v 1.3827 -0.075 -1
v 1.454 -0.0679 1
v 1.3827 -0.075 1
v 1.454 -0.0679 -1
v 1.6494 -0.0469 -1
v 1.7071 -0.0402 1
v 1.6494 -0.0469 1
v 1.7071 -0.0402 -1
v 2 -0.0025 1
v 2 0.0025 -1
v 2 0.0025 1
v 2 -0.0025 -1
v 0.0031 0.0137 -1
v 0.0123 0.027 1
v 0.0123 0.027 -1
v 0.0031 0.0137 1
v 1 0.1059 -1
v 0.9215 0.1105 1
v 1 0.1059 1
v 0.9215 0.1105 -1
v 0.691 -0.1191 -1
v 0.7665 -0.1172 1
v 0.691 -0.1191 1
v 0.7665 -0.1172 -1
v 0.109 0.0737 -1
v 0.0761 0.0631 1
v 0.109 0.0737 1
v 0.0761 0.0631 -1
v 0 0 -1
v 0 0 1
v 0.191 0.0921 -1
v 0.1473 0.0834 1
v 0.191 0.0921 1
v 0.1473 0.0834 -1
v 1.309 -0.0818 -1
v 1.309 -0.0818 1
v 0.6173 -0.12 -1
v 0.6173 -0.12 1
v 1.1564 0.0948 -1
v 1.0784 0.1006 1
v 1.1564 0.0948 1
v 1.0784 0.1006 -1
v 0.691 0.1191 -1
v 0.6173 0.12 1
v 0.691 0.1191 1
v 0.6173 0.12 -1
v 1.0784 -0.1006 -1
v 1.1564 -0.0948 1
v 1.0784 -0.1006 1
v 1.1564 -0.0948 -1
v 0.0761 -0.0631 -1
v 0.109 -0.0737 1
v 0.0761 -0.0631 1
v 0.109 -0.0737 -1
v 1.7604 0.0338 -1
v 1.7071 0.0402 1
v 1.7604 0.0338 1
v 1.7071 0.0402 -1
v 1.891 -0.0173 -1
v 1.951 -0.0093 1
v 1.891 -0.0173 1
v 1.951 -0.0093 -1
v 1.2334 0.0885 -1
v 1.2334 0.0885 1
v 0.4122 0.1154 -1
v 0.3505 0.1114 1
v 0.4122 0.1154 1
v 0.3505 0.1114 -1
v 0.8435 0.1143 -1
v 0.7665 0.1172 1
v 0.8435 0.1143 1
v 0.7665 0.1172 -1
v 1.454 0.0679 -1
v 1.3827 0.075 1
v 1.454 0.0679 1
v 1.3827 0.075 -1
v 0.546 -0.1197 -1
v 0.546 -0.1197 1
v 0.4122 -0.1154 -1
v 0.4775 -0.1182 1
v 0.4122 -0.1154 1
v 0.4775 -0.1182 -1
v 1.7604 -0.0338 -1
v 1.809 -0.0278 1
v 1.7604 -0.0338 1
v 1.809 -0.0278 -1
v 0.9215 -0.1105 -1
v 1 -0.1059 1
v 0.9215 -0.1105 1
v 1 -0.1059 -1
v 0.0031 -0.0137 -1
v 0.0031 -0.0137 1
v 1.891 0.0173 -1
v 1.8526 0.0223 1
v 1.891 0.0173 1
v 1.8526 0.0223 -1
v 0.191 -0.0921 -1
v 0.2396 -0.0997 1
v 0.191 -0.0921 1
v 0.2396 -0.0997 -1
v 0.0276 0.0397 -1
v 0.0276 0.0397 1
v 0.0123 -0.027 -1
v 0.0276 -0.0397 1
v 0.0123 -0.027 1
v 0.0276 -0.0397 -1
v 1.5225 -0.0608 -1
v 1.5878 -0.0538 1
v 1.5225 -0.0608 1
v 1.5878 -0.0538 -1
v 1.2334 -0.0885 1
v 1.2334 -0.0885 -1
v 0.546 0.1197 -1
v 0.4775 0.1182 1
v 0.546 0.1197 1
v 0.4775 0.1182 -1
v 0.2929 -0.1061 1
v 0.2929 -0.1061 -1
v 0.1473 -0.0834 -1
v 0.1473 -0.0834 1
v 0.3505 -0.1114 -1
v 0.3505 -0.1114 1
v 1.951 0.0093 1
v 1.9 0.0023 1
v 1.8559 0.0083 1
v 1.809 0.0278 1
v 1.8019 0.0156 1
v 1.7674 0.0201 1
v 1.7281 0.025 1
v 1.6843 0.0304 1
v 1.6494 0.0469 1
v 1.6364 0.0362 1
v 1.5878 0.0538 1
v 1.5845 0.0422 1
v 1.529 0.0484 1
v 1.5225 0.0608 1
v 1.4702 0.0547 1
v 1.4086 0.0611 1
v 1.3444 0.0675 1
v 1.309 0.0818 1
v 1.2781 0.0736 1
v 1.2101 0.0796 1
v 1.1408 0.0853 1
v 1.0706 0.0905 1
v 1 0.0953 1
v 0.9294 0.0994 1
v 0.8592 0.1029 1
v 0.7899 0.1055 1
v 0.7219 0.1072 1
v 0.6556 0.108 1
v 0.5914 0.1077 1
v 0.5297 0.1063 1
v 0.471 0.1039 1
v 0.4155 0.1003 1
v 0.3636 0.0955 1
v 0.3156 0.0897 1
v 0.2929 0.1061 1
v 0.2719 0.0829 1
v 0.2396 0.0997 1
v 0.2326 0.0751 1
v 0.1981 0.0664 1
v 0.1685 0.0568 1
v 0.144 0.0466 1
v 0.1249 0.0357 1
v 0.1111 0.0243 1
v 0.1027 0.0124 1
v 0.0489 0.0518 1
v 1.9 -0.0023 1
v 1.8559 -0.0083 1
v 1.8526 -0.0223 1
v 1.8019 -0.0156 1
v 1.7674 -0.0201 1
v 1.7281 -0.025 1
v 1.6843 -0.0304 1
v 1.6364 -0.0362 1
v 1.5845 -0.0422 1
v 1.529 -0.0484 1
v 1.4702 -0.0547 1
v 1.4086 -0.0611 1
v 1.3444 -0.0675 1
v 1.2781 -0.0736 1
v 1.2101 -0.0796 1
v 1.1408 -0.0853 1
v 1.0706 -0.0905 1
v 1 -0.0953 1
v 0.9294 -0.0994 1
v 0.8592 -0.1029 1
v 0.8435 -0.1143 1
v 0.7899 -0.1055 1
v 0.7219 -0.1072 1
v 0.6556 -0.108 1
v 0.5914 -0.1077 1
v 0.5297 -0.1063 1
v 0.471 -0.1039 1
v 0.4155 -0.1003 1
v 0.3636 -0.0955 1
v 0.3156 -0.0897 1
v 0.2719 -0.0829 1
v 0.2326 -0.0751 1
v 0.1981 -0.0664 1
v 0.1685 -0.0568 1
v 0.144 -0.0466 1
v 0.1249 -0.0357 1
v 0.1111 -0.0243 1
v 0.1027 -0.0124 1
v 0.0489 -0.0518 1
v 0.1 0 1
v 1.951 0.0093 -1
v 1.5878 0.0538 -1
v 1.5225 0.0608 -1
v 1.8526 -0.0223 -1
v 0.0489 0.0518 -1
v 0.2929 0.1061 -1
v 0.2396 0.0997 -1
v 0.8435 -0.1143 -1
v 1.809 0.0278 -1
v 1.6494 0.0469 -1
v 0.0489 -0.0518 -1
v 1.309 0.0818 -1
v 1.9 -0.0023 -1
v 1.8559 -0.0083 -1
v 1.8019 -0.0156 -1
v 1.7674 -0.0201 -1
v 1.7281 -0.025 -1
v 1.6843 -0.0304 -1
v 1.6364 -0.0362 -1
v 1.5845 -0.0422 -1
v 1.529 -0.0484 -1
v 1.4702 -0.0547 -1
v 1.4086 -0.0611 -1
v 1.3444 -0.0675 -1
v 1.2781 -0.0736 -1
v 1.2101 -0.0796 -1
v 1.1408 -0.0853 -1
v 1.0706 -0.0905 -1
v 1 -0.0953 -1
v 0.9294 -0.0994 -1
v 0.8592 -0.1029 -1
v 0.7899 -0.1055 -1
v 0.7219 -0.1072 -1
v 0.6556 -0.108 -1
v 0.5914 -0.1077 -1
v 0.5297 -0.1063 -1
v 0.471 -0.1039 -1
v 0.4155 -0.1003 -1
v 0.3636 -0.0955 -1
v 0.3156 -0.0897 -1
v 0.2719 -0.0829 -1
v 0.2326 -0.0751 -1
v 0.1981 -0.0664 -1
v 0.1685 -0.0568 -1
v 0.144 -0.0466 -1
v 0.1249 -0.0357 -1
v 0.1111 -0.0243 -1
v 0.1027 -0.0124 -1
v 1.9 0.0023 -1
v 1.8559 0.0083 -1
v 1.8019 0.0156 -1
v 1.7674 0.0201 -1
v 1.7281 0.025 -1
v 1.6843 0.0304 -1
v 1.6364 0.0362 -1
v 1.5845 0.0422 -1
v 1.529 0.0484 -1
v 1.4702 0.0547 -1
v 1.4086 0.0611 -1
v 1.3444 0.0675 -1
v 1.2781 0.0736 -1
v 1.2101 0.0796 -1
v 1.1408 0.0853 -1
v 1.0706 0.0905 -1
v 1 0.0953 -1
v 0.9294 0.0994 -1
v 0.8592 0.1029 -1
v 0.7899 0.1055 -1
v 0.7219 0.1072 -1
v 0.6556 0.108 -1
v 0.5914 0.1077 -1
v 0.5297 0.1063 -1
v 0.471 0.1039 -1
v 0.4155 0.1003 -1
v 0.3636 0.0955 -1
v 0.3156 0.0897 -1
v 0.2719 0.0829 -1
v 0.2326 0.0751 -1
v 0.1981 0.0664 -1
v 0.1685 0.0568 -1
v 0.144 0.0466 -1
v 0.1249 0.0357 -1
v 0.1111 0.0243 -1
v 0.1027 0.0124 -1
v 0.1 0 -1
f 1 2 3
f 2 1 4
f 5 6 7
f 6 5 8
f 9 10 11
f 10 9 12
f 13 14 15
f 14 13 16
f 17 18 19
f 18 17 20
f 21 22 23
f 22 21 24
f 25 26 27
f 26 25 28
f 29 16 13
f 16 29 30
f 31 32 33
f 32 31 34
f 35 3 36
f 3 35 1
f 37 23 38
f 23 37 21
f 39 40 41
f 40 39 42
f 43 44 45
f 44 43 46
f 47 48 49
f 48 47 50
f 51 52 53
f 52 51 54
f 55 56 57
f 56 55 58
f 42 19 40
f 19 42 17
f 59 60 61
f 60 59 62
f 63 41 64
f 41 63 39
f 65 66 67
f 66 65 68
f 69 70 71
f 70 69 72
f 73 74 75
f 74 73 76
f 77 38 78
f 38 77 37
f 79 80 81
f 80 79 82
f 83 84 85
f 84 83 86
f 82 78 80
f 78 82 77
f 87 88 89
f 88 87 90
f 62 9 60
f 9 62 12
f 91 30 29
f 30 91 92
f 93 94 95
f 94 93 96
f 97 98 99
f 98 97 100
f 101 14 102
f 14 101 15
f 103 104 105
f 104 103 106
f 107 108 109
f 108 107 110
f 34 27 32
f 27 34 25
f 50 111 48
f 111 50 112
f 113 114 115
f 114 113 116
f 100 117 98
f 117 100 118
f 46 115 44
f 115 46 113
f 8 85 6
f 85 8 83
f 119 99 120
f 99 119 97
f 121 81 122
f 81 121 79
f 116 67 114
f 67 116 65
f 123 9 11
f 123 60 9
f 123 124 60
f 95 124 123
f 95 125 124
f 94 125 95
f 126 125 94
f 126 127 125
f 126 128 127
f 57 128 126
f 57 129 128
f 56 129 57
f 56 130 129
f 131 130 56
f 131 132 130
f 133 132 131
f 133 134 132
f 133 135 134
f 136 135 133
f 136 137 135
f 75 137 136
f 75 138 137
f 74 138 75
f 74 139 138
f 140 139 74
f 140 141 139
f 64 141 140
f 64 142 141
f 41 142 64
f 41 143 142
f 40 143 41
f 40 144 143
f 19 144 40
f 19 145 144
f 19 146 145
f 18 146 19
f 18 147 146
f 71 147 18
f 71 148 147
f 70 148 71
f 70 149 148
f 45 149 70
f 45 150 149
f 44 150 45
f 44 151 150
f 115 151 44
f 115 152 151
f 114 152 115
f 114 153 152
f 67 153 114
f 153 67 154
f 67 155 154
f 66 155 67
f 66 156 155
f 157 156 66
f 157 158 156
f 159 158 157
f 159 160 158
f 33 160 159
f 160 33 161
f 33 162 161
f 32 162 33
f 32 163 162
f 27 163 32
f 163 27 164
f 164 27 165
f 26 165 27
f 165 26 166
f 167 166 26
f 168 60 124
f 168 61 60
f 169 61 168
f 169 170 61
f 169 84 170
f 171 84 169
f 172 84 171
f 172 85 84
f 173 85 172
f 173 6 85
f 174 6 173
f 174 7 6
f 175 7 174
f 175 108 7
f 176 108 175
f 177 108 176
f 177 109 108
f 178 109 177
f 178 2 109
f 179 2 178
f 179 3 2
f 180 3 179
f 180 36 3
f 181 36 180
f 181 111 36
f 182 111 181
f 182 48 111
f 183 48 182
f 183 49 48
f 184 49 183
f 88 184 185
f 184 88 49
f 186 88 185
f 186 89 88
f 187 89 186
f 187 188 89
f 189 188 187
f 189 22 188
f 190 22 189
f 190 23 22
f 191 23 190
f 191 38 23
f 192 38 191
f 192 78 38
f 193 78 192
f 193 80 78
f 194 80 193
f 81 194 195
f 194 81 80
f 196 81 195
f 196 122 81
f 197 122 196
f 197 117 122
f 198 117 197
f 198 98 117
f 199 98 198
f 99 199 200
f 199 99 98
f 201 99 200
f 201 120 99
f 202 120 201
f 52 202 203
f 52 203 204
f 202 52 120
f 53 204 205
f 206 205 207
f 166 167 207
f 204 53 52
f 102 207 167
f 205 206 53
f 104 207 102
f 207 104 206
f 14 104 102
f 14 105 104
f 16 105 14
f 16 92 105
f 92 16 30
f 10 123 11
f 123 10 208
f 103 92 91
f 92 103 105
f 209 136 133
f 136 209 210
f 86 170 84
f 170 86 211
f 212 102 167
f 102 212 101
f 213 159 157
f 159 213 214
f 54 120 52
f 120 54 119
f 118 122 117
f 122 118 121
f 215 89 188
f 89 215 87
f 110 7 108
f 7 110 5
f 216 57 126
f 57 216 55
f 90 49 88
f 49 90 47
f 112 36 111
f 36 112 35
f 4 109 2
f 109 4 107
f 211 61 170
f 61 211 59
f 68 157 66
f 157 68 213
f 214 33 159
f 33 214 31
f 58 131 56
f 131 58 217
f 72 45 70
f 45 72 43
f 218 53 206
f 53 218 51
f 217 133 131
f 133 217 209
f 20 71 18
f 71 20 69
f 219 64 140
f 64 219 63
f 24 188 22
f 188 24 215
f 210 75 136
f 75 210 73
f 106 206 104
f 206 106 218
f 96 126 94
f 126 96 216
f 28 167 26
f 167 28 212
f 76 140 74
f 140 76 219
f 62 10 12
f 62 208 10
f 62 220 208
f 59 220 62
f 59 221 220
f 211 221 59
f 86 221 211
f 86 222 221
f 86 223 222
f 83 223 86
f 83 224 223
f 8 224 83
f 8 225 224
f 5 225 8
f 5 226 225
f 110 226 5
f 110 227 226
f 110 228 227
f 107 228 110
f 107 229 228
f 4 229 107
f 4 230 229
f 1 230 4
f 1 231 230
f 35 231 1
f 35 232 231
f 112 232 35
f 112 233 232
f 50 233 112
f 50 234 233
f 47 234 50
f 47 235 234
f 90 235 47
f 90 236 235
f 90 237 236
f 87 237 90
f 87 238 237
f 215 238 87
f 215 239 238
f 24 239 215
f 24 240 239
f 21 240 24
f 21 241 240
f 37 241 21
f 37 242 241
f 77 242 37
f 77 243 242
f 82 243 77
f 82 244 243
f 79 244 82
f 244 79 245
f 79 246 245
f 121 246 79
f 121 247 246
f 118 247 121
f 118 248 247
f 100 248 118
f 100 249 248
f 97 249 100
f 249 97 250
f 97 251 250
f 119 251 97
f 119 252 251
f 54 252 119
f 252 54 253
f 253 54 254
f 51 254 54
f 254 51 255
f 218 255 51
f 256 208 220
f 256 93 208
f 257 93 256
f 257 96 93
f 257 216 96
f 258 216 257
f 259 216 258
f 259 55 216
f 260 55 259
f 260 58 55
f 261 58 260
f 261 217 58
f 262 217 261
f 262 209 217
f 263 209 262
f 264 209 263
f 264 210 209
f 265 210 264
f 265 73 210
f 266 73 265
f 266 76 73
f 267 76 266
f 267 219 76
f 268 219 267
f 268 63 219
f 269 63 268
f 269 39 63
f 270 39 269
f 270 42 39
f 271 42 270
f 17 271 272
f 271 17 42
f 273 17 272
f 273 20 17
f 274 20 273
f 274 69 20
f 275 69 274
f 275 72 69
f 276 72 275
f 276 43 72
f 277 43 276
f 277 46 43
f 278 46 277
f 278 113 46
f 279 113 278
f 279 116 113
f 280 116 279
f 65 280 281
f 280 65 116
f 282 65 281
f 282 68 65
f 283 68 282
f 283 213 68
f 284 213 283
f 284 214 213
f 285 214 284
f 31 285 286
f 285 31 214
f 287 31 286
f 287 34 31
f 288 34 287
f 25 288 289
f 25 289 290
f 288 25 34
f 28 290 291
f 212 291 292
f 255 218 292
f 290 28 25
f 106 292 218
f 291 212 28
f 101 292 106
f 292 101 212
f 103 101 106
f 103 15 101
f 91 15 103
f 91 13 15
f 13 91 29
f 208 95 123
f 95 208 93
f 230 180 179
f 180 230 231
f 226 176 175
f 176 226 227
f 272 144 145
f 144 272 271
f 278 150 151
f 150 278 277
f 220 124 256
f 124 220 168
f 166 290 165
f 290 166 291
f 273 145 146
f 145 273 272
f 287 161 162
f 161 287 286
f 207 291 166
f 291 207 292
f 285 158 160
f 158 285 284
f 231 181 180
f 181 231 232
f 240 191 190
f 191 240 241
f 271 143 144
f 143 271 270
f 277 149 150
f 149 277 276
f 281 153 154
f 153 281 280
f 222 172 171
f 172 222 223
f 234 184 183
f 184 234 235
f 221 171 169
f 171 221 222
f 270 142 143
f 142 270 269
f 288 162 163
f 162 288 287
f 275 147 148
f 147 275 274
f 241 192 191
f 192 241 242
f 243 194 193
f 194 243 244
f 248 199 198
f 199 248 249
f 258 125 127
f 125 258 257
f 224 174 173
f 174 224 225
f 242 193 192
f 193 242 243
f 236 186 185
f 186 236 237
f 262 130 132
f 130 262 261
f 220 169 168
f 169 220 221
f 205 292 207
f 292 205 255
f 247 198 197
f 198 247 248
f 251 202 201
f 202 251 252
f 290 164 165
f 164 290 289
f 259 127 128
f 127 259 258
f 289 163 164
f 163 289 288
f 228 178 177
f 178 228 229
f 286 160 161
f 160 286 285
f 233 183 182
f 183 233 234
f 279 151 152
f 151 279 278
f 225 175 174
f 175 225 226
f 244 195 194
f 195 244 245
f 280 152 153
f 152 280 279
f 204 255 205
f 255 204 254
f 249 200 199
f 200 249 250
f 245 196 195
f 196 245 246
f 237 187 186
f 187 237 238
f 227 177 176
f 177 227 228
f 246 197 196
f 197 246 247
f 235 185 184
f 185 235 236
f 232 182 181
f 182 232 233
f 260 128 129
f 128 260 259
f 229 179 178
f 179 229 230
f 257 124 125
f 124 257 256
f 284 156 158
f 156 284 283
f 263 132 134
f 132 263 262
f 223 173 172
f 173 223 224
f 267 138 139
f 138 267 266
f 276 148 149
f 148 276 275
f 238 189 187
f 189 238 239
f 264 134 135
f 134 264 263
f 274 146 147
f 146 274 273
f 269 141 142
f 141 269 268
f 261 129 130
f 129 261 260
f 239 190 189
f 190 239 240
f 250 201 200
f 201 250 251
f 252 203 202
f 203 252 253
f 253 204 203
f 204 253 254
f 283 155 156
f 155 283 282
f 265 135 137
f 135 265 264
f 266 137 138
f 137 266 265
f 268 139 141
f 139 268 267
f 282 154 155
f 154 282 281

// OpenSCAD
points = [[1.000000,0.001260],[0.998459,0.001476],[0.993844,0.002120],[0.986185,0.003182],[0.975528,0.004642],[0.961940,0.006478],[0.945503,0.008658],[0.926320,0.011149],[0.904508,0.013914],[0.880203,0.016914],[0.853553,0.020107],[0.824724,0.023452],[0.793893,0.026905],[0.761249,0.030423],[0.726995,0.033962],[0.691342,0.037476],[0.654508,0.040917],[0.616723,0.044237],[0.578217,0.047383],[0.539230,0.050302],[0.500000,0.052940],[0.460770,0.055241],[0.421783,0.057148],[0.383277,0.058609],[0.345492,0.059575],[0.308658,0.060000],[0.273005,0.059848],[0.238751,0.059092],[0.206107,0.057714],[0.175276,0.055709],[0.146447,0.053083],[0.119797,0.049854],[0.095492,0.046049],[0.073680,0.041705],[0.054497,0.036867],[0.038060,0.031580],[0.024472,0.025893],[0.013815,0.019854],[0.006156,0.013503],[0.001541,0.006877],[0.000000,0.000000],[0.001541,-0.006877],[0.006156,-0.013503],[0.013815,-0.019854],[0.024472,-0.025893],[0.038060,-0.031580],[0.054497,-0.036867],[0.073680,-0.041705],[0.095492,-0.046049],[0.119797,-0.049854],[0.146447,-0.053083],[0.175276,-0.055709],[0.206107,-0.057714],[0.238751,-0.059092],[0.273005,-0.059848],[0.308658,-0.060000],[0.345492,-0.059575],[0.383277,-0.058609],[0.421783,-0.057148],[0.460770,-0.055241],[0.500000,-0.052940],[0.539230,-0.050302],[0.578217,-0.047383],[0.616723,-0.044237],[0.654508,-0.040917],[0.691342,-0.037476],[0.726995,-0.033962],[0.761249,-0.030423],[0.793893,-0.026905],[0.824724,-0.023452],[0.853553,-0.020107],[0.880203,-0.016914],[0.904508,-0.013914],[0.926320,-0.011149],[0.945503,-0.008658],[0.961940,-0.006478],[0.975528,-0.004642],[0.986185,-0.003182],[0.993844,-0.002120],[0.998459,-0.001476],[1.000000,-0.001260]];
points_2 = [[0.98471, -0.026896], [0.989711, -0.027594], [0.982089, -0.026537], [0.971483, -0.025084], [0.957959, -0.023257], [0.941599, -0.021087], [0.922502, -0.018607], [0.900784, -0.015854], [0.876581, -0.012867], [0.85004, -0.009687], [0.821326, -0.006355], [0.790616, -0.002916], [0.7581, 0.000589], [0.723982, 0.004114], [0.688475, 0.007613], [0.6518, 0.011039], [0.614189, 0.014344], [0.575876, 0.017474], [0.537104, 0.020377], [0.498115, 0.022999], [0.459159, 0.025284], [0.420481, 0.027176], [0.382325, 0.028624], [0.344936, 0.029579], [0.308549, 0.029999], [0.2734, 0.029849], [0.239715, 0.029106], [0.207713, 0.027755], [0.177611, 0.025797], [0.149613, 0.023247], [0.123923, 0.020134], [0.100744, 0.016506], [0.080282, 0.012431], [0.062767, 0.008013], [0.048463, 0.003412], [0.037705, -0.00109], [0.030918, -0.004936], [0.028443, -0.006988], [0.029526, -0.005433], [0.030744, -0.0], [0.029526, 0.005433], [0.028443, 0.006988], [0.030918, 0.004936], [0.037705, 0.00109], [0.048463, -0.003412], [0.062767, -0.008013], [0.080282, -0.012431], [0.100744, -0.016506], [0.123923, -0.020134], [0.149613, -0.023247], [0.177611, -0.025797], [0.207713, -0.027755], [0.239715, -0.029106], [0.2734, -0.029849], [0.308549, -0.029999], [0.344936, -0.029579], [0.382325, -0.028624], [0.420481, -0.027176], [0.459159, -0.025284], [0.498115, -0.022999], [0.537104, -0.020377], [0.575876, -0.017474], [0.614189, -0.014344], [0.6518, -0.011039], [0.688475, -0.007613], [0.723982, -0.004114], [0.7581, -0.000589], [0.790616, 0.002916], [0.821326, 0.006355], [0.85004, 0.009687], [0.876581, 0.012867], [0.900784, 0.015854], [0.922502, 0.018607], [0.941599, 0.021087], [0.957959, 0.023257], [0.971483, 0.025084], [0.982089, 0.026537], [0.989711, 0.027594], [0.98471, 0.026896], [0.956629, 0.0]];

     translate([0,0,1])
   linear_extrude(height = 2, center = true, convexity = 10, twist = 0, slices = 20, scale = 1.0, $fn = 16)
    scale([2, 2, 1])
    polygon(points_2);

difference()
{
    linear_extrude(height = 2, center = true, convexity = 10, twist = 0, slices = 20, scale = 1.0, $fn = 16)
    scale([2, 2, 1])
    polygon(points);

    linear_extrude(height = 2.2, center = true, convexity = 10, twist = 0, slices = 20, scale = 1.0, $fn = 16)
    translate([0.1, 0, 0])
    scale([1.8, 1.8, 1])
    polygon(points);
}
